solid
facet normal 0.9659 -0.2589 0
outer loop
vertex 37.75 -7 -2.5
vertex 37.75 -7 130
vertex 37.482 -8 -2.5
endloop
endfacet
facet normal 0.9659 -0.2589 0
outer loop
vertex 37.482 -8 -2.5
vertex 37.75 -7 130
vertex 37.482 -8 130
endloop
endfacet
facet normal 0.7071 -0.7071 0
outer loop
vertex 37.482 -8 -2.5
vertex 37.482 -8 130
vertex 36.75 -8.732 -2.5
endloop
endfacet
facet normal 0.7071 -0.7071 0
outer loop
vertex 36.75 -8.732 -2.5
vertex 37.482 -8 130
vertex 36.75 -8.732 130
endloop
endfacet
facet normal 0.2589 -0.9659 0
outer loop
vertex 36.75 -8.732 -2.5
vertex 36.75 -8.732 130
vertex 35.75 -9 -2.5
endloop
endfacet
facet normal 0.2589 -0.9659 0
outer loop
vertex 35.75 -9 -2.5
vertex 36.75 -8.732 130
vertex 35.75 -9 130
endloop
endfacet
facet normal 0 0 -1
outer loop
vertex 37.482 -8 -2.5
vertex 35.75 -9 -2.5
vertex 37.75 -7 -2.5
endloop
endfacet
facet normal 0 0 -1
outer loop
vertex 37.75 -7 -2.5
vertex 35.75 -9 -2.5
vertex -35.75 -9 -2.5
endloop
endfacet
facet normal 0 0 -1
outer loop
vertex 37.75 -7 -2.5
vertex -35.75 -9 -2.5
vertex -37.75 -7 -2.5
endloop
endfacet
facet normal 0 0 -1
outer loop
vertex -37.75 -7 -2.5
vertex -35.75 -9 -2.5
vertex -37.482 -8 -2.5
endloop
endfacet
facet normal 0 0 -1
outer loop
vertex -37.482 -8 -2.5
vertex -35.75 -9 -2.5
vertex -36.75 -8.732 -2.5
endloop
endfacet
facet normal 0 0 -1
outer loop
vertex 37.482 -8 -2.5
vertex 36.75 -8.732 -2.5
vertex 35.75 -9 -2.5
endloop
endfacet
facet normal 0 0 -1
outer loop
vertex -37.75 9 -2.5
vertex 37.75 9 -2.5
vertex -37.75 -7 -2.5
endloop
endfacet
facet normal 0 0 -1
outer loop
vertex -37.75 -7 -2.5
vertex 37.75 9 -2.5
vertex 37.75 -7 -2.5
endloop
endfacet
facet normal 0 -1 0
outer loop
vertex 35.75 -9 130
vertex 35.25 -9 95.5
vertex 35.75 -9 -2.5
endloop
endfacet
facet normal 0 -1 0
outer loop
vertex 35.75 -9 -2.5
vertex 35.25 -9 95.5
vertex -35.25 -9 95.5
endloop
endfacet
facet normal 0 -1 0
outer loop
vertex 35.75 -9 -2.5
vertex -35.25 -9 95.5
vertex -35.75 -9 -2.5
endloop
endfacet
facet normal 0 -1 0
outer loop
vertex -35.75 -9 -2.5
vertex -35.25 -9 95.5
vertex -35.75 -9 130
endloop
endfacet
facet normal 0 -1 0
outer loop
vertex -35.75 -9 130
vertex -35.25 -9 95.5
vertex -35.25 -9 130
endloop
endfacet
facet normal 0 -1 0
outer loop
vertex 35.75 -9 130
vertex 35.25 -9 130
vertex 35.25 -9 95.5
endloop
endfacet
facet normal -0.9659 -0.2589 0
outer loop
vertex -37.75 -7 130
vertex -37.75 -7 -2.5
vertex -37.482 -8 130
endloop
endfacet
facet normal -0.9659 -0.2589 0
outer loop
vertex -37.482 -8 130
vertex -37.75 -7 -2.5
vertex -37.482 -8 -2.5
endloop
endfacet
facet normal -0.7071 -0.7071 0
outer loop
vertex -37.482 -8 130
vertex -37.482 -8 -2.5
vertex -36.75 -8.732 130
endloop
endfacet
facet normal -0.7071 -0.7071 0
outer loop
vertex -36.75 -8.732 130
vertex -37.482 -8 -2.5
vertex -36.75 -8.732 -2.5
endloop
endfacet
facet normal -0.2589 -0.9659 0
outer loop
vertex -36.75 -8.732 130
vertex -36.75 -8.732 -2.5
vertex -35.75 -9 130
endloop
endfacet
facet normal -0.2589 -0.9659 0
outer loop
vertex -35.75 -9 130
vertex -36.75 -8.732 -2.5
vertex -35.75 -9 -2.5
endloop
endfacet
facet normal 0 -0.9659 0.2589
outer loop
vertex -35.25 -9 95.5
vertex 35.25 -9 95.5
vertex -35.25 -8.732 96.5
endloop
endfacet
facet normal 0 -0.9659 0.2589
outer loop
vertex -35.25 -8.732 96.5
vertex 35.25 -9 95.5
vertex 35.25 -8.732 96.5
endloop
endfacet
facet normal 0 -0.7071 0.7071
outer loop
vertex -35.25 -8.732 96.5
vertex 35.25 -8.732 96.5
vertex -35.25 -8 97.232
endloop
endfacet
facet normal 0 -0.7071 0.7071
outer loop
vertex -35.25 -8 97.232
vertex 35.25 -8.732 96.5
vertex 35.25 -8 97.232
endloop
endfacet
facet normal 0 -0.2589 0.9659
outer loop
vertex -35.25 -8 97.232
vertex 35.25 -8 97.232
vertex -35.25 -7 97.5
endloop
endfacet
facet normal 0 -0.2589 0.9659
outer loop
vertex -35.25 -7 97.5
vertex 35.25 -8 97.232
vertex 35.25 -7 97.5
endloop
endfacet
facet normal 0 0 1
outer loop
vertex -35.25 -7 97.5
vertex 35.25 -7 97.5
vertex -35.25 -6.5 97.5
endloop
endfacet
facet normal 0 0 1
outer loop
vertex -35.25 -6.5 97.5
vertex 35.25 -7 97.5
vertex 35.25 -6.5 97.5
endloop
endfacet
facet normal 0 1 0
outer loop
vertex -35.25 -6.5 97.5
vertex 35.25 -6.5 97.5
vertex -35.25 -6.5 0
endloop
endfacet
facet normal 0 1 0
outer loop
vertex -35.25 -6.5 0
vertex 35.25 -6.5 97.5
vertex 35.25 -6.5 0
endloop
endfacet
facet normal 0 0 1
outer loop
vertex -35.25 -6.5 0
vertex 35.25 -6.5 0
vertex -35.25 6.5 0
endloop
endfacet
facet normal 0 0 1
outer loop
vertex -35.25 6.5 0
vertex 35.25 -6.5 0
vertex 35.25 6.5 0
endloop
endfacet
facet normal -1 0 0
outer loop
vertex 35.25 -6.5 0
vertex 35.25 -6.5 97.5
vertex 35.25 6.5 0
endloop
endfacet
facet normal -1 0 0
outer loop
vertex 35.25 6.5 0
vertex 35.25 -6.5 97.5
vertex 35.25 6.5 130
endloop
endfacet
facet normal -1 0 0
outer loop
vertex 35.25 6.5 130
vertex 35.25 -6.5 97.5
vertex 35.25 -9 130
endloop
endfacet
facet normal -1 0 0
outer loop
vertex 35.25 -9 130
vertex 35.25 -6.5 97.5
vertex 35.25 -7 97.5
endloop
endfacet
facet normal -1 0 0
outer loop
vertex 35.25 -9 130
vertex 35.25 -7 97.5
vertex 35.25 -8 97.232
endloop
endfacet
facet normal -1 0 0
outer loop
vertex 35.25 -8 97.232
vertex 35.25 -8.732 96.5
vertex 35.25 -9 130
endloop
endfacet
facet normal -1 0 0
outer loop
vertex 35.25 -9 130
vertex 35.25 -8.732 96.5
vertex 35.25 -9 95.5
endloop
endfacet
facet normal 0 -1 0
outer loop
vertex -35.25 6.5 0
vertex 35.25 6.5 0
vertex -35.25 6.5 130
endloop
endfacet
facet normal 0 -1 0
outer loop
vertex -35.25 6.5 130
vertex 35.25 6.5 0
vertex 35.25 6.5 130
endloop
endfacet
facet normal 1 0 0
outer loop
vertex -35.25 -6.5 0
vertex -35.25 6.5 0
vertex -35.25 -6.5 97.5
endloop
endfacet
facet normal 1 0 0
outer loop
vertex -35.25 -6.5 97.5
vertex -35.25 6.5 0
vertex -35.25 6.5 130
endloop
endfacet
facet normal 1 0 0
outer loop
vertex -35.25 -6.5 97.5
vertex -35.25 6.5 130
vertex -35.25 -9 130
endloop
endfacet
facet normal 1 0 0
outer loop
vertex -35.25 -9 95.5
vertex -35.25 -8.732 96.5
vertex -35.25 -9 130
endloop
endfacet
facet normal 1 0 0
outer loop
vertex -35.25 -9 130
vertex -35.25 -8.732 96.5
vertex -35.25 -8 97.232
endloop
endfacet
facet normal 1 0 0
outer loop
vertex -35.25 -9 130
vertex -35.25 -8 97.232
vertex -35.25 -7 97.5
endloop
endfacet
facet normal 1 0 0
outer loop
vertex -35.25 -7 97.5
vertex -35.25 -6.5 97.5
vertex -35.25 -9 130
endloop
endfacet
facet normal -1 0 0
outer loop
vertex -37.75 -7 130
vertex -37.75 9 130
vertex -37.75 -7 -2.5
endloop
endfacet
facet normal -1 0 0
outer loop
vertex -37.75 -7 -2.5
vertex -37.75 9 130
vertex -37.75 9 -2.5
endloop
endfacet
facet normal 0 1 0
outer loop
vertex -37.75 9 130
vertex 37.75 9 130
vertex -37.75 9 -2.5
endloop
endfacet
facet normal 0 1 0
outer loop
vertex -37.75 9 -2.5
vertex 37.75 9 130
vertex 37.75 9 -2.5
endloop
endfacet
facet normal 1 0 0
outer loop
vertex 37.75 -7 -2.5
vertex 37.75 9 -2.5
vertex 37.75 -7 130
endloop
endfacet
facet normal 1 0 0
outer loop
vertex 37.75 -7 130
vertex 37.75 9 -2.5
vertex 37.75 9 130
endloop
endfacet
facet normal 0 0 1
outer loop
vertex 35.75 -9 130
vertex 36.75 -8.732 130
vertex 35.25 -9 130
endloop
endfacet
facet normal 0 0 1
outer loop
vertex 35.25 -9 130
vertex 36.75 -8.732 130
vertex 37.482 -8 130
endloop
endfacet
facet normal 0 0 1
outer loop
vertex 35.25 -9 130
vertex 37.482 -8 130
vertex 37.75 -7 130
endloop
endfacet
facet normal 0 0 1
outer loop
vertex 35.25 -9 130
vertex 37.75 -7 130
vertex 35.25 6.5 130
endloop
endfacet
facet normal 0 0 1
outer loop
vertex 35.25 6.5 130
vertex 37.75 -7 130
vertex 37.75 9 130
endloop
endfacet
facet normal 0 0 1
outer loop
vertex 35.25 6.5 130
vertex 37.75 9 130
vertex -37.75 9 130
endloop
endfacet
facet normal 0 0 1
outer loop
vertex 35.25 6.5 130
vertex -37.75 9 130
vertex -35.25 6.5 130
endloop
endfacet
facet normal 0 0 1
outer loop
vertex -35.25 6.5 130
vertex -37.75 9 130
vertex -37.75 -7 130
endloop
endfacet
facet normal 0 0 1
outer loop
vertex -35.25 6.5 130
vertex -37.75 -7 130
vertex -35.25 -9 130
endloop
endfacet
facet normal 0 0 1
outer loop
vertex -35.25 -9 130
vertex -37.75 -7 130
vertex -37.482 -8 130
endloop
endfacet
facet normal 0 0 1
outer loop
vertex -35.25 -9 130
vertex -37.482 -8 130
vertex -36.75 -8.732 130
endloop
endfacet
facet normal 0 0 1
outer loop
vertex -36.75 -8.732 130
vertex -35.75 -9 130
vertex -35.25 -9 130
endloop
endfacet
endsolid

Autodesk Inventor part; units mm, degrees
sketch "Sketch1" plane through (0, 0, 0) normal (0, 0, 1) x (1, 0, 0)
  line L0 (0, 2.8582) -> (0, -2.8582) construction
  line L1 (-5.7775, 0) -> (5.7775, 0) construction
  line L2 (-35.25, -6.5) -> (35.25, -6.5)
  line L3 (35.25, -6.5) -> (35.25, 6.5)
  line L4 (35.25, 6.5) -> (-35.25, 6.5)
  line L5 (-35.25, 6.5) -> (-35.25, -6.5)
  line L6 (-35.25, -6.5) -> (35.25, 6.5) construction
  line L7 (35.25, -6.5) -> (-35.25, 6.5) construction
  line L8 (-37.75, 9) -> (37.75, 9)
  line L9 (37.75, 9) -> (37.75, -9)
  line L10 (37.75, -9) -> (-37.75, -9)
  line L11 (-37.75, -9) -> (-37.75, 9)
  line L12 (-37.75, 9) -> (37.75, -9) construction
  line L13 (37.75, 9) -> (-37.75, -9) construction
  point P0 (0, 0)
  point P1 (0, 0)
  dimension "d0" = 70.5
  dimension "d1" = 13
  dimension "d2" = 2.5
  dimension "d3" = 2.5
extrude "Extrusion1" add sketch "Sketch1" along normal blind 130
sketch "Sketch2" plane through (0, 0, 0) normal (0, 0, -1) x (-1, 0, 0)
  line L0 (-35.25, -6.5) -> (35.25, -6.5) projected
  line L1 (35.25, -6.5) -> (35.25, 6.5) projected
  line L2 (35.25, 6.5) -> (-35.25, 6.5) projected
  line L3 (-35.25, 6.5) -> (-35.25, -6.5) projected
  line L4 (37.75, 9) -> (37.75, -9) projected
  line L5 (37.75, -9) -> (-37.75, -9) projected
  line L6 (-37.75, -9) -> (-37.75, 9) projected
  line L7 (-37.75, 9) -> (37.75, 9) projected
  point P0 (0, 0)
extrude "Extrusion2" add sketch "Sketch2" along normal blind 2.5 contours L3 L2 L1 L0 | L4 L5 L6 L7
sketch "Sketch3" plane through (-37.75, -9, 130) normal (0, -1, 0) x (1, 0, 0)
  line L0 (75.5, -132.5) -> (0, -132.5) projected
  line L1 (0, -132.5) -> (0, 0) projected
  line L2 (0, 0) -> (75.5, 0) projected
  line L3 (75.5, 0) -> (75.5, -132.5) projected
  line L4 (0, -32.5) -> (75.5, -32.5)
  line L5 (2.5, -130) -> (2.5, 0) projected
  line L6 (73, -130) -> (73, 0) projected
  point P0 (37.75, -130)
  point P1 (73, -32.5)
  point P2 (2.5, -32.5)
  dimension "d8" = 100
extrude "Extrusion3" cut sketch "Sketch3" against normal up to surface (2.5 mm away) contours L4 L5 L2 L6
fillet "Fillet1" radius 2 1 edges at (0, -9, 97.5)
fillet "Fillet2" radius 2 2 edges at (-37.75, -9, 63.75) (37.75, -9, 63.75)
equation "\"d3\" = d2"
properties part number "Powerbank Holder" material "S235"
